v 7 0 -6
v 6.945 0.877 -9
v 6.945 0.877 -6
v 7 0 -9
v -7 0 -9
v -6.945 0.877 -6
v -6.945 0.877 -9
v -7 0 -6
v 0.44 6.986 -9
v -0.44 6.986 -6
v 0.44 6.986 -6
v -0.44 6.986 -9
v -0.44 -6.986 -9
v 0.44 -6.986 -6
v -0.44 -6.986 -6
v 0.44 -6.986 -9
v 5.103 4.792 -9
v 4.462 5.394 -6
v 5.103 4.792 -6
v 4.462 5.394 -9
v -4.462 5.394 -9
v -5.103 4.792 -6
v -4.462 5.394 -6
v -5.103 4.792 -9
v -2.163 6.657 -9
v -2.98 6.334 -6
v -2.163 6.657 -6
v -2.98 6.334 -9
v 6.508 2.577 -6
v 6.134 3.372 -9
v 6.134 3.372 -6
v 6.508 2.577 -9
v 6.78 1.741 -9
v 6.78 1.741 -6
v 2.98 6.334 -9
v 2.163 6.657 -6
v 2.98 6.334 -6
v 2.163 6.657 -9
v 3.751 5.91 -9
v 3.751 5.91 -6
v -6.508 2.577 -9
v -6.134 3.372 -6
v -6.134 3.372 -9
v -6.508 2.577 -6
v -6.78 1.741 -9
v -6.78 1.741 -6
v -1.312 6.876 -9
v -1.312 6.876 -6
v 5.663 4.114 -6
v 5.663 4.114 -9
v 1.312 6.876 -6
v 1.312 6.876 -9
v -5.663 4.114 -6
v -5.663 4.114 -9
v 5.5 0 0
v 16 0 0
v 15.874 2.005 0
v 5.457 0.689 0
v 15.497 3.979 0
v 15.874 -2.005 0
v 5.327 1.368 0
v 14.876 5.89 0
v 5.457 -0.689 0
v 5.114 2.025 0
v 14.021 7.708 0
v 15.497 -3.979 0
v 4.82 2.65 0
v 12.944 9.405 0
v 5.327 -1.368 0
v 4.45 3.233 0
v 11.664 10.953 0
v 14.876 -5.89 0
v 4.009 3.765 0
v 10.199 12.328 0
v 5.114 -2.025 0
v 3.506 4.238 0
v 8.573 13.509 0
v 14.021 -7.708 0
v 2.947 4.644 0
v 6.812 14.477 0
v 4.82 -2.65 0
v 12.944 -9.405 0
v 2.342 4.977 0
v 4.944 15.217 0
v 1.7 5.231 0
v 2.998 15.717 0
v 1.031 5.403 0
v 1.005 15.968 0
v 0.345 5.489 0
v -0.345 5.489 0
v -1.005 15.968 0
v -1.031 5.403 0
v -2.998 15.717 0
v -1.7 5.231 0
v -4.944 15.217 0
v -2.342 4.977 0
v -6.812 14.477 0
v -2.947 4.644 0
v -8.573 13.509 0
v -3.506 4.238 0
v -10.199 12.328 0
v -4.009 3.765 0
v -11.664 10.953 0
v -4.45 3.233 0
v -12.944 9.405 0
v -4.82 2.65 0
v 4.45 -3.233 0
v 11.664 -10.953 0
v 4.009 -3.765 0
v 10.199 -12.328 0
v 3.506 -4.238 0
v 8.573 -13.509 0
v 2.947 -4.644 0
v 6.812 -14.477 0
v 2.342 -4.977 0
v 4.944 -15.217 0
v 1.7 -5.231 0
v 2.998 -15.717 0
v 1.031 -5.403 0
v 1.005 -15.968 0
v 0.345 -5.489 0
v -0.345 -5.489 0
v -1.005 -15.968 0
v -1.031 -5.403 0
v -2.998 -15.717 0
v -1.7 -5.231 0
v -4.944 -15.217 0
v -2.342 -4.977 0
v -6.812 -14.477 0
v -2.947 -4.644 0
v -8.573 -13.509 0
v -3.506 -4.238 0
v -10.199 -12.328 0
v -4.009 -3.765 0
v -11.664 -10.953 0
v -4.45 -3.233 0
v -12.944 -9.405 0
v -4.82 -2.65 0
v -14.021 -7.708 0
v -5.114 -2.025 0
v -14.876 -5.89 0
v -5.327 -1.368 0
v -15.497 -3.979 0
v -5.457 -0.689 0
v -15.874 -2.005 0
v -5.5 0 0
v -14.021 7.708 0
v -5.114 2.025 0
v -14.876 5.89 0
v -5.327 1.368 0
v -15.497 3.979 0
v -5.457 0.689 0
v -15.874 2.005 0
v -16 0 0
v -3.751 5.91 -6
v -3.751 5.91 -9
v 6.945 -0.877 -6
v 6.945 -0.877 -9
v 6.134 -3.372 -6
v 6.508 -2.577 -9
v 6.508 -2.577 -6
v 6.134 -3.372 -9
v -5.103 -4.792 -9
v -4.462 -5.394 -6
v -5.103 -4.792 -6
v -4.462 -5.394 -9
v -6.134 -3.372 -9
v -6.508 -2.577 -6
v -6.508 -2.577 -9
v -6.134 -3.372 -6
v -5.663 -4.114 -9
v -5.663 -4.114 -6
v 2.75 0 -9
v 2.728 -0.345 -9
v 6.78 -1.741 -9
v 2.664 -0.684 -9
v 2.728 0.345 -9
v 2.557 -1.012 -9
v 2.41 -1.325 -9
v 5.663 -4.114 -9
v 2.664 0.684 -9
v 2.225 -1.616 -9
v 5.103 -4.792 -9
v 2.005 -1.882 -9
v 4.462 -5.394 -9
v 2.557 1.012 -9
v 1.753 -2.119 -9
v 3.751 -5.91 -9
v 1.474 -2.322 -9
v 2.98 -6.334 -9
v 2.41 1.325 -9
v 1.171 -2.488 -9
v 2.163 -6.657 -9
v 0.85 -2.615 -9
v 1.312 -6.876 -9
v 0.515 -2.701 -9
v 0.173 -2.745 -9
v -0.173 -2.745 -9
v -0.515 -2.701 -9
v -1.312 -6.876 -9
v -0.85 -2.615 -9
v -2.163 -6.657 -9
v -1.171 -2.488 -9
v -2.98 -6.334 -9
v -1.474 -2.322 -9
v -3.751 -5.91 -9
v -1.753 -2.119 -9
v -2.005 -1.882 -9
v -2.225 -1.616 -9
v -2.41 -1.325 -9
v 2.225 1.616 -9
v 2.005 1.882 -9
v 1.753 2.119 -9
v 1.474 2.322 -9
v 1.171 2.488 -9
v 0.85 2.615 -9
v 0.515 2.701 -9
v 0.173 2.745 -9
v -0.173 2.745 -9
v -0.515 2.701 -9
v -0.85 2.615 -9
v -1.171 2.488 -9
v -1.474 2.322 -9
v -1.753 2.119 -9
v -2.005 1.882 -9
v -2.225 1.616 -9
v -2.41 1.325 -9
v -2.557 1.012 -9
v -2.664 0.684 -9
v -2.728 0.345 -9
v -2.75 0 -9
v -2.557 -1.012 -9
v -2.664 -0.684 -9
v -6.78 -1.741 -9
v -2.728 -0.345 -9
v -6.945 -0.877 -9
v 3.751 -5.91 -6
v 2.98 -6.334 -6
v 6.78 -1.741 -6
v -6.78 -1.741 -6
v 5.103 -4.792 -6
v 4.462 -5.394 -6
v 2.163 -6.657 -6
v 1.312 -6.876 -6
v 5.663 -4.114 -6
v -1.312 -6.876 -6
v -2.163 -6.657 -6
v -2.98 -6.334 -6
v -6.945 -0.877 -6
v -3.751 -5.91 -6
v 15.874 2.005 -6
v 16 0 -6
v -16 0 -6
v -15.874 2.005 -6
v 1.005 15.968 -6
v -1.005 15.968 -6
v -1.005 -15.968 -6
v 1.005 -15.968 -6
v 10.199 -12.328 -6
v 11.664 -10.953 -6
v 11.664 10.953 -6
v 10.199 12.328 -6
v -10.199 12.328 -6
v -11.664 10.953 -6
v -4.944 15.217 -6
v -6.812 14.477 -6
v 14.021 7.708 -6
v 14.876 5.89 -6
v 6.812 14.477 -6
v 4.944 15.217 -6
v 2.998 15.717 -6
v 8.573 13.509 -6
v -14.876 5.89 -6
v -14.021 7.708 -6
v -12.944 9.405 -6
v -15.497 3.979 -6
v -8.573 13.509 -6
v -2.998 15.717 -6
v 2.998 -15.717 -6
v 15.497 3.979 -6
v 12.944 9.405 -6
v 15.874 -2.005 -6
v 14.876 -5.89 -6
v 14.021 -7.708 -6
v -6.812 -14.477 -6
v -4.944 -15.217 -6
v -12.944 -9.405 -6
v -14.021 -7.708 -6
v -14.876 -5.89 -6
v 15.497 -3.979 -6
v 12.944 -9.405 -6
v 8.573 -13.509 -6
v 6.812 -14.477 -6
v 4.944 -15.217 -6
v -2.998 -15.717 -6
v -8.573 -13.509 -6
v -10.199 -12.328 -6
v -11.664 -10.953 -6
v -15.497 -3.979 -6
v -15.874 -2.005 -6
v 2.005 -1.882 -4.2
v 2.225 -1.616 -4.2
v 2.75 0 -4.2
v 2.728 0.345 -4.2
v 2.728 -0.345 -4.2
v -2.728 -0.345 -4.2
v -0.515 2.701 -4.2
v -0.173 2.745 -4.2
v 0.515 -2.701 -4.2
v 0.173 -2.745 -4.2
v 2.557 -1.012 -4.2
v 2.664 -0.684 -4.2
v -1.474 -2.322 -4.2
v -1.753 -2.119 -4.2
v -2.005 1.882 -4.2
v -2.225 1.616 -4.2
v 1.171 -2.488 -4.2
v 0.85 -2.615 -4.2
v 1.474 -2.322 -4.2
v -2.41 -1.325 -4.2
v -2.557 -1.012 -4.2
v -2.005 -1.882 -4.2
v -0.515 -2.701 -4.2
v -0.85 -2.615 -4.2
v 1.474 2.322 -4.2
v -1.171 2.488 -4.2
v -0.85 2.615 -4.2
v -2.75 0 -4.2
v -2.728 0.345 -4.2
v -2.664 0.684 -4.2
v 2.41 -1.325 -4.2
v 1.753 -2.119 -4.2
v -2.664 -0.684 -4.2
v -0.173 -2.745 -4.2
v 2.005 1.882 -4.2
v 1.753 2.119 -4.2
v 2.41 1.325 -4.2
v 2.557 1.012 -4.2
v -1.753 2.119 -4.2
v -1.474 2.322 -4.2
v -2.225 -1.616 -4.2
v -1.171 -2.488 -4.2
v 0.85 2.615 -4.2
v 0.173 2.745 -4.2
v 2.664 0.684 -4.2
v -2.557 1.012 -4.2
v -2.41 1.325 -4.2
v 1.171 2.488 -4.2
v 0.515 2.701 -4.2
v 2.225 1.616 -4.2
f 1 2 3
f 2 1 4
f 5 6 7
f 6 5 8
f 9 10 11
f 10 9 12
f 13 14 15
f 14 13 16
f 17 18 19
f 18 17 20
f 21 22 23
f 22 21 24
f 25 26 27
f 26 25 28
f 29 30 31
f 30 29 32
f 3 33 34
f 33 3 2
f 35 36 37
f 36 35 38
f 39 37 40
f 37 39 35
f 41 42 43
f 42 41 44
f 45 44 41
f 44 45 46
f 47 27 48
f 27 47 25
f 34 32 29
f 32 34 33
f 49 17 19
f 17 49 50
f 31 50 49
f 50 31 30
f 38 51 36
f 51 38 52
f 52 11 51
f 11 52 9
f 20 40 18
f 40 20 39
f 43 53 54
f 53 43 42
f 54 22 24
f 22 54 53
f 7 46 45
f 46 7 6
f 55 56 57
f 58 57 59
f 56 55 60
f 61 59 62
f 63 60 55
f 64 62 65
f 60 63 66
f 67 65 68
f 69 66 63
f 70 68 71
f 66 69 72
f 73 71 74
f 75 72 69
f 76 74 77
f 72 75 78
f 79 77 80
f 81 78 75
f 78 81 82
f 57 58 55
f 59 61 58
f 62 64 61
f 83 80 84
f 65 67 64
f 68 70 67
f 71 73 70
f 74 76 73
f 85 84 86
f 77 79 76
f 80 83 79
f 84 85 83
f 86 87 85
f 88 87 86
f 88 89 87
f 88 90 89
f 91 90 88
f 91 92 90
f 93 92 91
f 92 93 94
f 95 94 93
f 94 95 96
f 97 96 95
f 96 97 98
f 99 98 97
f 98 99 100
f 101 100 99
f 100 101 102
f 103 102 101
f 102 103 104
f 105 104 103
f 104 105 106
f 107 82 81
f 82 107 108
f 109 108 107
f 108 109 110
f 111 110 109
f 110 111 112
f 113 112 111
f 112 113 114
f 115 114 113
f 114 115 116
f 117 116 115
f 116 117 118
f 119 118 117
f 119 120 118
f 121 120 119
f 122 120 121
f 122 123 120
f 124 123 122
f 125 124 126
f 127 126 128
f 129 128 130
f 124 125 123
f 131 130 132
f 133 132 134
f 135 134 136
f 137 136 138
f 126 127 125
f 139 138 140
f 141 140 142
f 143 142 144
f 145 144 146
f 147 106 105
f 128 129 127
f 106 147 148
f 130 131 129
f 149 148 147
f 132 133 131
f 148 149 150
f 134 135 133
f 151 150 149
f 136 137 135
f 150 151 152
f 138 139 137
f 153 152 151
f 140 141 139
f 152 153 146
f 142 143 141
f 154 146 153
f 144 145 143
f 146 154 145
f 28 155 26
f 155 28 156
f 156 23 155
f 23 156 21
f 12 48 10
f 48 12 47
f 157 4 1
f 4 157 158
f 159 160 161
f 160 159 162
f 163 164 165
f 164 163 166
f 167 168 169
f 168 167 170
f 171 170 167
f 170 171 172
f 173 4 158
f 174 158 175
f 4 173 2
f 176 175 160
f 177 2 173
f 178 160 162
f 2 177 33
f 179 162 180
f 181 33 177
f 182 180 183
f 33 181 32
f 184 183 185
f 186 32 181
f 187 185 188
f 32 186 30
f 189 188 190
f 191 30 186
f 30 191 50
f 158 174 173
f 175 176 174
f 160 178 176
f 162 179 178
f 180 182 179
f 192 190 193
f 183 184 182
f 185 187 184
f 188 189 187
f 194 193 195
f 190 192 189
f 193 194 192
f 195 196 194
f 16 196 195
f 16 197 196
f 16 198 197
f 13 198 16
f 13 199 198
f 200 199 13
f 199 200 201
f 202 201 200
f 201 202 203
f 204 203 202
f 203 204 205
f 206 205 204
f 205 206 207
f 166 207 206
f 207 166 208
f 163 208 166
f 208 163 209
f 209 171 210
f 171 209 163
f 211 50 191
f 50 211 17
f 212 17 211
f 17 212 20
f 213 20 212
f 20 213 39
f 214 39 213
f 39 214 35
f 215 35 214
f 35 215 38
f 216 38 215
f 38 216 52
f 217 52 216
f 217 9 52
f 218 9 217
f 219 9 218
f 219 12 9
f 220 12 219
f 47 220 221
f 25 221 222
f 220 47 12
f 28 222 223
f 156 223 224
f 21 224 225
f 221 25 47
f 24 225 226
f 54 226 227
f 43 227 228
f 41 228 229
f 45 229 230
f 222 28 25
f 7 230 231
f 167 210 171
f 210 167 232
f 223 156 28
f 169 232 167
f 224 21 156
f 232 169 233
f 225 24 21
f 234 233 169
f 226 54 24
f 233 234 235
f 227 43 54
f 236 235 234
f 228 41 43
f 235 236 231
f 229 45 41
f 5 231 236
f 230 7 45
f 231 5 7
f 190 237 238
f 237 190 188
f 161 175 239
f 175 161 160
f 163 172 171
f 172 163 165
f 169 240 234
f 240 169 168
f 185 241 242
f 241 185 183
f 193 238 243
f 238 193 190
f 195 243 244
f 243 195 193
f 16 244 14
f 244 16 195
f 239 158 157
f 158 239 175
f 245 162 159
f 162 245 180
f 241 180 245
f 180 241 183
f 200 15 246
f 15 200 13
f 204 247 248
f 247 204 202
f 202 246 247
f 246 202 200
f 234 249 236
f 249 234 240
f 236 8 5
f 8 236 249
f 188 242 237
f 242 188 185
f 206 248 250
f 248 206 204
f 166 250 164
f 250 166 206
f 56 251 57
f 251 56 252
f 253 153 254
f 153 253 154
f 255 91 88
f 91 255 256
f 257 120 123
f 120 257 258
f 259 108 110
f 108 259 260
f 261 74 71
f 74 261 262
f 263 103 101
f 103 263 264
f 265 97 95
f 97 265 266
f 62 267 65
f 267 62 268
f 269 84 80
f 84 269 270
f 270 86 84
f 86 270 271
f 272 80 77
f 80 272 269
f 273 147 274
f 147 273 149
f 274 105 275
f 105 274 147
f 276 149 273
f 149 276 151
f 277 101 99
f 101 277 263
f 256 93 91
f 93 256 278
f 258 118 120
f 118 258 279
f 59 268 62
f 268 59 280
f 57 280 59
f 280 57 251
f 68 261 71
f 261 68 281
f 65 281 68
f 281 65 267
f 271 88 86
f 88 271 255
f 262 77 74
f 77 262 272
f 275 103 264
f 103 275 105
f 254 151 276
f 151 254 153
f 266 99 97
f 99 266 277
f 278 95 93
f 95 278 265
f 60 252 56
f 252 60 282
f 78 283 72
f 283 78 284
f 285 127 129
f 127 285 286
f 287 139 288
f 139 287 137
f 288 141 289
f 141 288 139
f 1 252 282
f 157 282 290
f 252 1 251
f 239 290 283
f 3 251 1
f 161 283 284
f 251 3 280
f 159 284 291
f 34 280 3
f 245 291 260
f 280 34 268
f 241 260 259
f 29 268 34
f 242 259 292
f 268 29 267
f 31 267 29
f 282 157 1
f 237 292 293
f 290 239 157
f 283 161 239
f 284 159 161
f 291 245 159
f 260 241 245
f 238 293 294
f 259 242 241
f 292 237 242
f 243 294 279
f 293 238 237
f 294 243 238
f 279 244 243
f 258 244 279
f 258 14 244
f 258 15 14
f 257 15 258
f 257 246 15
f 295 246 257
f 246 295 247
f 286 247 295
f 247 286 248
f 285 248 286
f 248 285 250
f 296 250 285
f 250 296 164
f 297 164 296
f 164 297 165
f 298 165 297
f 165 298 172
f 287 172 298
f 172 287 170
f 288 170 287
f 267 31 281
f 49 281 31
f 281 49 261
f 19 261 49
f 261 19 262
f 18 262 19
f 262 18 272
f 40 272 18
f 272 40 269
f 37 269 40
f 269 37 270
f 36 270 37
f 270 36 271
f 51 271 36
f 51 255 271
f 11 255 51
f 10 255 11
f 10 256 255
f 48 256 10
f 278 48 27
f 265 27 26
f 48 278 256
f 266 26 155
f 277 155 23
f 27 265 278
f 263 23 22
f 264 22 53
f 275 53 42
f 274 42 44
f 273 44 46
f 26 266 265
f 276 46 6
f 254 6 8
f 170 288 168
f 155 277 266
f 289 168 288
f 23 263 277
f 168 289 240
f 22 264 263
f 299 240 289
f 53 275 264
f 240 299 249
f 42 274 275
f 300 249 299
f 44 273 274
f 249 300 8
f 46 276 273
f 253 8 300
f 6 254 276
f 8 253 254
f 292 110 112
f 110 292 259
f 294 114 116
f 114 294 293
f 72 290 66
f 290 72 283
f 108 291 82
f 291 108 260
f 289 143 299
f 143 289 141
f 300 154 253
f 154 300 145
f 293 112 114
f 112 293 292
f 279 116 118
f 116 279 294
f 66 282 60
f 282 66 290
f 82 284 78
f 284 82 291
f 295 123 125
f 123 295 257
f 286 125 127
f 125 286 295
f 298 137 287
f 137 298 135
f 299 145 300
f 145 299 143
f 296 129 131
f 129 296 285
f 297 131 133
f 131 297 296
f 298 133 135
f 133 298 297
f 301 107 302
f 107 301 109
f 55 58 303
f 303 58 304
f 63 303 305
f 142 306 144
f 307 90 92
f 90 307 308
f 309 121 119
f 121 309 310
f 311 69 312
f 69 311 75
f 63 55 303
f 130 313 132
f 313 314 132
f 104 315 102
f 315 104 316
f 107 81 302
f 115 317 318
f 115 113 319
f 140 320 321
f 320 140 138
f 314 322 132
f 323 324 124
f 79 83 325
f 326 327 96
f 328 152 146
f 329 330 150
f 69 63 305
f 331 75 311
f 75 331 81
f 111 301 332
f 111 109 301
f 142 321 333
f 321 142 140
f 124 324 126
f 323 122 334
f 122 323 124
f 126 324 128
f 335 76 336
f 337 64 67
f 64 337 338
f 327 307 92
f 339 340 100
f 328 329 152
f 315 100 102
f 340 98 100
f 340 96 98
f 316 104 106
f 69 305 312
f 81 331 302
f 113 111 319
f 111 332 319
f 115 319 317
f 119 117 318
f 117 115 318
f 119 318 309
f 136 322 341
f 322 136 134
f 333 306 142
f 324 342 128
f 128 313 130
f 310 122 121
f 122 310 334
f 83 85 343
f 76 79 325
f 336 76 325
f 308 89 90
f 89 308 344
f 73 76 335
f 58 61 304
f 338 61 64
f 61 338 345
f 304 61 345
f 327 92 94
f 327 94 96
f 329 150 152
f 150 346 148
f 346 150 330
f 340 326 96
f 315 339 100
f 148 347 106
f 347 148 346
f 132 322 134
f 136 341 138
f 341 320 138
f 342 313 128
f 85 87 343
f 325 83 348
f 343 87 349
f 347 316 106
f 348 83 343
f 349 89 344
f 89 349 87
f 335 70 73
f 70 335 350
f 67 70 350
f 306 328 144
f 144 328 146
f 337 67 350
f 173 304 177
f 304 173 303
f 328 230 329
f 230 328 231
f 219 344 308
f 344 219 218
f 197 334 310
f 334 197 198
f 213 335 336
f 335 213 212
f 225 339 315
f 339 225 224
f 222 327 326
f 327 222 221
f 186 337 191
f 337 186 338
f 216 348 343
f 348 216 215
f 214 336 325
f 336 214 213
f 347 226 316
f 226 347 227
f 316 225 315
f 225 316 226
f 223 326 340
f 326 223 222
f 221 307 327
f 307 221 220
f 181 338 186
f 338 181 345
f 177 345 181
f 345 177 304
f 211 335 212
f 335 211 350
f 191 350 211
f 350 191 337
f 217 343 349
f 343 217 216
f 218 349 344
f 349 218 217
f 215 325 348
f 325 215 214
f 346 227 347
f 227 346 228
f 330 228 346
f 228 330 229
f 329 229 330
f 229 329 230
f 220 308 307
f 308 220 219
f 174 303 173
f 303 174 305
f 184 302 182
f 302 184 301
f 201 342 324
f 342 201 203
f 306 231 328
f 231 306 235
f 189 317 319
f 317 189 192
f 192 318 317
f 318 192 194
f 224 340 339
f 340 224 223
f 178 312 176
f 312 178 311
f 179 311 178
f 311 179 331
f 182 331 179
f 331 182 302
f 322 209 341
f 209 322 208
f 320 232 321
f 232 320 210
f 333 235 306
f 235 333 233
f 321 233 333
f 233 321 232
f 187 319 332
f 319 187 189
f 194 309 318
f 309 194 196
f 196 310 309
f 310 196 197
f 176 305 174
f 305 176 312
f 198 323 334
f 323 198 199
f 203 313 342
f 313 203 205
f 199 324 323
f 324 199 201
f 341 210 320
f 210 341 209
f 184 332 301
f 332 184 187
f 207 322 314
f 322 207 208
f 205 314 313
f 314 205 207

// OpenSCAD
$fn = 50;


difference() {
	union() {
		translate(v = [0, 0, -9.0000000000]) {
			cylinder(h = 9, r = 7.0000000000);
		}
		translate(v = [0, 0, -6.0000000000]) {
			cylinder(h = 6, r = 16.0000000000);
		}
	}
	union() {
		translate(v = [0, 0, 0]) {
			rotate(a = [0, 0, 0]) {
				difference() {
					union() {
						#translate(v = [0, 0, -9.0000000000]) {
							cylinder(h = 9, r = 2.2500000000);
						}
						#translate(v = [0, 0, -4.2000000000]) {
							cylinder(h = 4.2000000000, r = 7.0000000000, r1 = 2.7500000000, r2 = 5.5000000000);
						}
						#translate(v = [0, 0, -9.0000000000]) {
							cylinder(h = 9, r = 2.7500000000);
						}
						#translate(v = [0, 0, -9.0000000000]) {
							cylinder(h = 9, r = 2.2500000000);
						}
					}
					union();
				}
			}
		}
	}
}
